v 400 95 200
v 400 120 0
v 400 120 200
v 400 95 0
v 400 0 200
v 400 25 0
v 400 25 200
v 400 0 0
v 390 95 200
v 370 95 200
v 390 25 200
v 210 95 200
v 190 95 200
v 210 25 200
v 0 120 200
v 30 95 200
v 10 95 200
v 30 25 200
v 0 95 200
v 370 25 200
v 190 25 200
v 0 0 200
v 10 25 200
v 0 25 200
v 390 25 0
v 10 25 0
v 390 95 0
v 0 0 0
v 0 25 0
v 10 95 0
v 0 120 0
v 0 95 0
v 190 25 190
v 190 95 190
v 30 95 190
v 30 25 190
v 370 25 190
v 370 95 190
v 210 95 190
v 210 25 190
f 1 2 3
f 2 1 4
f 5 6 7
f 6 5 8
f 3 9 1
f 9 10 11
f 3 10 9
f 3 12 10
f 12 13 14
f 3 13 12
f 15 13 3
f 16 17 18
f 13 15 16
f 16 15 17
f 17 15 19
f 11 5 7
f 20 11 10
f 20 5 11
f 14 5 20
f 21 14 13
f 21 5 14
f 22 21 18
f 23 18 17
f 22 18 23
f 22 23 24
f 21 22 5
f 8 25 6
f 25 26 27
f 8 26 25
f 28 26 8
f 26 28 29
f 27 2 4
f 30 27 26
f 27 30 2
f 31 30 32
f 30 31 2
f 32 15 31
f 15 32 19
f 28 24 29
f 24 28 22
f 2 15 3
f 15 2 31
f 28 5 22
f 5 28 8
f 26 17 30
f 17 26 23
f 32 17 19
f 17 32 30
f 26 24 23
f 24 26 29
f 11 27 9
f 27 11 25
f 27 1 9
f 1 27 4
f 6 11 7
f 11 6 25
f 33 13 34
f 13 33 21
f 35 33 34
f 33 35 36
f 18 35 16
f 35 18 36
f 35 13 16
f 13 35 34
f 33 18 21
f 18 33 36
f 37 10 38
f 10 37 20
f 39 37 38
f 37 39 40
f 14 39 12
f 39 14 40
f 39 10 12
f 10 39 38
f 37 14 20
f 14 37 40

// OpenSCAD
module block(corte_x=0, corte_y=0, corte_z=0) {    
    _color="#bdc3c7";
    _largo=400;
    _ancho=120;
    _alto=200;
    _relieve_x=20;
    _relieve_y=25;
    _relieve_z=10;
    
    color(_color)
    union() difference() {
        // cubo principal
        cube([_largo, _ancho, _alto]);
        
        // relieves laterales
        _relieves_x=[_relieve_z+1, _ancho-(_relieve_y*2), _alto+2];
        translate([-1, _relieve_y, -1])
        cube(_relieves_x);        
        translate([_largo-_relieve_z, _relieve_y, -1])
        cube(_relieves_x);
        
        // relieves de arriba
        _relieves_z=[
            (_largo/2)-(_relieve_z+_relieve_x)-(_relieve_x/2),
            _ancho-(_relieve_y*2),
            _relieve_z+1
        ];
        translate([_relieve_z+_relieve_x, _relieve_y, _alto-_relieve_z])
        cube(_relieves_z);
        translate([(_largo/2)+(_relieve_x/2), _relieve_y, _alto-_relieve_z])
        cube(_relieves_z);
        
        // corte lateral x
        translate([_largo-corte_x, -1, -1])
        cube([corte_x+1, _ancho+2, _alto+2]);
        
        // corte lateral y
        translate([-1, _ancho-corte_y, -1])
        cube([_largo+2, corte_y+1, _alto+2]);
        
        // corte arriba
        translate([-1, -1, _alto-corte_z])
        cube([_largo+2, _ancho+2, corte_z+1]);
    }
}

block();
